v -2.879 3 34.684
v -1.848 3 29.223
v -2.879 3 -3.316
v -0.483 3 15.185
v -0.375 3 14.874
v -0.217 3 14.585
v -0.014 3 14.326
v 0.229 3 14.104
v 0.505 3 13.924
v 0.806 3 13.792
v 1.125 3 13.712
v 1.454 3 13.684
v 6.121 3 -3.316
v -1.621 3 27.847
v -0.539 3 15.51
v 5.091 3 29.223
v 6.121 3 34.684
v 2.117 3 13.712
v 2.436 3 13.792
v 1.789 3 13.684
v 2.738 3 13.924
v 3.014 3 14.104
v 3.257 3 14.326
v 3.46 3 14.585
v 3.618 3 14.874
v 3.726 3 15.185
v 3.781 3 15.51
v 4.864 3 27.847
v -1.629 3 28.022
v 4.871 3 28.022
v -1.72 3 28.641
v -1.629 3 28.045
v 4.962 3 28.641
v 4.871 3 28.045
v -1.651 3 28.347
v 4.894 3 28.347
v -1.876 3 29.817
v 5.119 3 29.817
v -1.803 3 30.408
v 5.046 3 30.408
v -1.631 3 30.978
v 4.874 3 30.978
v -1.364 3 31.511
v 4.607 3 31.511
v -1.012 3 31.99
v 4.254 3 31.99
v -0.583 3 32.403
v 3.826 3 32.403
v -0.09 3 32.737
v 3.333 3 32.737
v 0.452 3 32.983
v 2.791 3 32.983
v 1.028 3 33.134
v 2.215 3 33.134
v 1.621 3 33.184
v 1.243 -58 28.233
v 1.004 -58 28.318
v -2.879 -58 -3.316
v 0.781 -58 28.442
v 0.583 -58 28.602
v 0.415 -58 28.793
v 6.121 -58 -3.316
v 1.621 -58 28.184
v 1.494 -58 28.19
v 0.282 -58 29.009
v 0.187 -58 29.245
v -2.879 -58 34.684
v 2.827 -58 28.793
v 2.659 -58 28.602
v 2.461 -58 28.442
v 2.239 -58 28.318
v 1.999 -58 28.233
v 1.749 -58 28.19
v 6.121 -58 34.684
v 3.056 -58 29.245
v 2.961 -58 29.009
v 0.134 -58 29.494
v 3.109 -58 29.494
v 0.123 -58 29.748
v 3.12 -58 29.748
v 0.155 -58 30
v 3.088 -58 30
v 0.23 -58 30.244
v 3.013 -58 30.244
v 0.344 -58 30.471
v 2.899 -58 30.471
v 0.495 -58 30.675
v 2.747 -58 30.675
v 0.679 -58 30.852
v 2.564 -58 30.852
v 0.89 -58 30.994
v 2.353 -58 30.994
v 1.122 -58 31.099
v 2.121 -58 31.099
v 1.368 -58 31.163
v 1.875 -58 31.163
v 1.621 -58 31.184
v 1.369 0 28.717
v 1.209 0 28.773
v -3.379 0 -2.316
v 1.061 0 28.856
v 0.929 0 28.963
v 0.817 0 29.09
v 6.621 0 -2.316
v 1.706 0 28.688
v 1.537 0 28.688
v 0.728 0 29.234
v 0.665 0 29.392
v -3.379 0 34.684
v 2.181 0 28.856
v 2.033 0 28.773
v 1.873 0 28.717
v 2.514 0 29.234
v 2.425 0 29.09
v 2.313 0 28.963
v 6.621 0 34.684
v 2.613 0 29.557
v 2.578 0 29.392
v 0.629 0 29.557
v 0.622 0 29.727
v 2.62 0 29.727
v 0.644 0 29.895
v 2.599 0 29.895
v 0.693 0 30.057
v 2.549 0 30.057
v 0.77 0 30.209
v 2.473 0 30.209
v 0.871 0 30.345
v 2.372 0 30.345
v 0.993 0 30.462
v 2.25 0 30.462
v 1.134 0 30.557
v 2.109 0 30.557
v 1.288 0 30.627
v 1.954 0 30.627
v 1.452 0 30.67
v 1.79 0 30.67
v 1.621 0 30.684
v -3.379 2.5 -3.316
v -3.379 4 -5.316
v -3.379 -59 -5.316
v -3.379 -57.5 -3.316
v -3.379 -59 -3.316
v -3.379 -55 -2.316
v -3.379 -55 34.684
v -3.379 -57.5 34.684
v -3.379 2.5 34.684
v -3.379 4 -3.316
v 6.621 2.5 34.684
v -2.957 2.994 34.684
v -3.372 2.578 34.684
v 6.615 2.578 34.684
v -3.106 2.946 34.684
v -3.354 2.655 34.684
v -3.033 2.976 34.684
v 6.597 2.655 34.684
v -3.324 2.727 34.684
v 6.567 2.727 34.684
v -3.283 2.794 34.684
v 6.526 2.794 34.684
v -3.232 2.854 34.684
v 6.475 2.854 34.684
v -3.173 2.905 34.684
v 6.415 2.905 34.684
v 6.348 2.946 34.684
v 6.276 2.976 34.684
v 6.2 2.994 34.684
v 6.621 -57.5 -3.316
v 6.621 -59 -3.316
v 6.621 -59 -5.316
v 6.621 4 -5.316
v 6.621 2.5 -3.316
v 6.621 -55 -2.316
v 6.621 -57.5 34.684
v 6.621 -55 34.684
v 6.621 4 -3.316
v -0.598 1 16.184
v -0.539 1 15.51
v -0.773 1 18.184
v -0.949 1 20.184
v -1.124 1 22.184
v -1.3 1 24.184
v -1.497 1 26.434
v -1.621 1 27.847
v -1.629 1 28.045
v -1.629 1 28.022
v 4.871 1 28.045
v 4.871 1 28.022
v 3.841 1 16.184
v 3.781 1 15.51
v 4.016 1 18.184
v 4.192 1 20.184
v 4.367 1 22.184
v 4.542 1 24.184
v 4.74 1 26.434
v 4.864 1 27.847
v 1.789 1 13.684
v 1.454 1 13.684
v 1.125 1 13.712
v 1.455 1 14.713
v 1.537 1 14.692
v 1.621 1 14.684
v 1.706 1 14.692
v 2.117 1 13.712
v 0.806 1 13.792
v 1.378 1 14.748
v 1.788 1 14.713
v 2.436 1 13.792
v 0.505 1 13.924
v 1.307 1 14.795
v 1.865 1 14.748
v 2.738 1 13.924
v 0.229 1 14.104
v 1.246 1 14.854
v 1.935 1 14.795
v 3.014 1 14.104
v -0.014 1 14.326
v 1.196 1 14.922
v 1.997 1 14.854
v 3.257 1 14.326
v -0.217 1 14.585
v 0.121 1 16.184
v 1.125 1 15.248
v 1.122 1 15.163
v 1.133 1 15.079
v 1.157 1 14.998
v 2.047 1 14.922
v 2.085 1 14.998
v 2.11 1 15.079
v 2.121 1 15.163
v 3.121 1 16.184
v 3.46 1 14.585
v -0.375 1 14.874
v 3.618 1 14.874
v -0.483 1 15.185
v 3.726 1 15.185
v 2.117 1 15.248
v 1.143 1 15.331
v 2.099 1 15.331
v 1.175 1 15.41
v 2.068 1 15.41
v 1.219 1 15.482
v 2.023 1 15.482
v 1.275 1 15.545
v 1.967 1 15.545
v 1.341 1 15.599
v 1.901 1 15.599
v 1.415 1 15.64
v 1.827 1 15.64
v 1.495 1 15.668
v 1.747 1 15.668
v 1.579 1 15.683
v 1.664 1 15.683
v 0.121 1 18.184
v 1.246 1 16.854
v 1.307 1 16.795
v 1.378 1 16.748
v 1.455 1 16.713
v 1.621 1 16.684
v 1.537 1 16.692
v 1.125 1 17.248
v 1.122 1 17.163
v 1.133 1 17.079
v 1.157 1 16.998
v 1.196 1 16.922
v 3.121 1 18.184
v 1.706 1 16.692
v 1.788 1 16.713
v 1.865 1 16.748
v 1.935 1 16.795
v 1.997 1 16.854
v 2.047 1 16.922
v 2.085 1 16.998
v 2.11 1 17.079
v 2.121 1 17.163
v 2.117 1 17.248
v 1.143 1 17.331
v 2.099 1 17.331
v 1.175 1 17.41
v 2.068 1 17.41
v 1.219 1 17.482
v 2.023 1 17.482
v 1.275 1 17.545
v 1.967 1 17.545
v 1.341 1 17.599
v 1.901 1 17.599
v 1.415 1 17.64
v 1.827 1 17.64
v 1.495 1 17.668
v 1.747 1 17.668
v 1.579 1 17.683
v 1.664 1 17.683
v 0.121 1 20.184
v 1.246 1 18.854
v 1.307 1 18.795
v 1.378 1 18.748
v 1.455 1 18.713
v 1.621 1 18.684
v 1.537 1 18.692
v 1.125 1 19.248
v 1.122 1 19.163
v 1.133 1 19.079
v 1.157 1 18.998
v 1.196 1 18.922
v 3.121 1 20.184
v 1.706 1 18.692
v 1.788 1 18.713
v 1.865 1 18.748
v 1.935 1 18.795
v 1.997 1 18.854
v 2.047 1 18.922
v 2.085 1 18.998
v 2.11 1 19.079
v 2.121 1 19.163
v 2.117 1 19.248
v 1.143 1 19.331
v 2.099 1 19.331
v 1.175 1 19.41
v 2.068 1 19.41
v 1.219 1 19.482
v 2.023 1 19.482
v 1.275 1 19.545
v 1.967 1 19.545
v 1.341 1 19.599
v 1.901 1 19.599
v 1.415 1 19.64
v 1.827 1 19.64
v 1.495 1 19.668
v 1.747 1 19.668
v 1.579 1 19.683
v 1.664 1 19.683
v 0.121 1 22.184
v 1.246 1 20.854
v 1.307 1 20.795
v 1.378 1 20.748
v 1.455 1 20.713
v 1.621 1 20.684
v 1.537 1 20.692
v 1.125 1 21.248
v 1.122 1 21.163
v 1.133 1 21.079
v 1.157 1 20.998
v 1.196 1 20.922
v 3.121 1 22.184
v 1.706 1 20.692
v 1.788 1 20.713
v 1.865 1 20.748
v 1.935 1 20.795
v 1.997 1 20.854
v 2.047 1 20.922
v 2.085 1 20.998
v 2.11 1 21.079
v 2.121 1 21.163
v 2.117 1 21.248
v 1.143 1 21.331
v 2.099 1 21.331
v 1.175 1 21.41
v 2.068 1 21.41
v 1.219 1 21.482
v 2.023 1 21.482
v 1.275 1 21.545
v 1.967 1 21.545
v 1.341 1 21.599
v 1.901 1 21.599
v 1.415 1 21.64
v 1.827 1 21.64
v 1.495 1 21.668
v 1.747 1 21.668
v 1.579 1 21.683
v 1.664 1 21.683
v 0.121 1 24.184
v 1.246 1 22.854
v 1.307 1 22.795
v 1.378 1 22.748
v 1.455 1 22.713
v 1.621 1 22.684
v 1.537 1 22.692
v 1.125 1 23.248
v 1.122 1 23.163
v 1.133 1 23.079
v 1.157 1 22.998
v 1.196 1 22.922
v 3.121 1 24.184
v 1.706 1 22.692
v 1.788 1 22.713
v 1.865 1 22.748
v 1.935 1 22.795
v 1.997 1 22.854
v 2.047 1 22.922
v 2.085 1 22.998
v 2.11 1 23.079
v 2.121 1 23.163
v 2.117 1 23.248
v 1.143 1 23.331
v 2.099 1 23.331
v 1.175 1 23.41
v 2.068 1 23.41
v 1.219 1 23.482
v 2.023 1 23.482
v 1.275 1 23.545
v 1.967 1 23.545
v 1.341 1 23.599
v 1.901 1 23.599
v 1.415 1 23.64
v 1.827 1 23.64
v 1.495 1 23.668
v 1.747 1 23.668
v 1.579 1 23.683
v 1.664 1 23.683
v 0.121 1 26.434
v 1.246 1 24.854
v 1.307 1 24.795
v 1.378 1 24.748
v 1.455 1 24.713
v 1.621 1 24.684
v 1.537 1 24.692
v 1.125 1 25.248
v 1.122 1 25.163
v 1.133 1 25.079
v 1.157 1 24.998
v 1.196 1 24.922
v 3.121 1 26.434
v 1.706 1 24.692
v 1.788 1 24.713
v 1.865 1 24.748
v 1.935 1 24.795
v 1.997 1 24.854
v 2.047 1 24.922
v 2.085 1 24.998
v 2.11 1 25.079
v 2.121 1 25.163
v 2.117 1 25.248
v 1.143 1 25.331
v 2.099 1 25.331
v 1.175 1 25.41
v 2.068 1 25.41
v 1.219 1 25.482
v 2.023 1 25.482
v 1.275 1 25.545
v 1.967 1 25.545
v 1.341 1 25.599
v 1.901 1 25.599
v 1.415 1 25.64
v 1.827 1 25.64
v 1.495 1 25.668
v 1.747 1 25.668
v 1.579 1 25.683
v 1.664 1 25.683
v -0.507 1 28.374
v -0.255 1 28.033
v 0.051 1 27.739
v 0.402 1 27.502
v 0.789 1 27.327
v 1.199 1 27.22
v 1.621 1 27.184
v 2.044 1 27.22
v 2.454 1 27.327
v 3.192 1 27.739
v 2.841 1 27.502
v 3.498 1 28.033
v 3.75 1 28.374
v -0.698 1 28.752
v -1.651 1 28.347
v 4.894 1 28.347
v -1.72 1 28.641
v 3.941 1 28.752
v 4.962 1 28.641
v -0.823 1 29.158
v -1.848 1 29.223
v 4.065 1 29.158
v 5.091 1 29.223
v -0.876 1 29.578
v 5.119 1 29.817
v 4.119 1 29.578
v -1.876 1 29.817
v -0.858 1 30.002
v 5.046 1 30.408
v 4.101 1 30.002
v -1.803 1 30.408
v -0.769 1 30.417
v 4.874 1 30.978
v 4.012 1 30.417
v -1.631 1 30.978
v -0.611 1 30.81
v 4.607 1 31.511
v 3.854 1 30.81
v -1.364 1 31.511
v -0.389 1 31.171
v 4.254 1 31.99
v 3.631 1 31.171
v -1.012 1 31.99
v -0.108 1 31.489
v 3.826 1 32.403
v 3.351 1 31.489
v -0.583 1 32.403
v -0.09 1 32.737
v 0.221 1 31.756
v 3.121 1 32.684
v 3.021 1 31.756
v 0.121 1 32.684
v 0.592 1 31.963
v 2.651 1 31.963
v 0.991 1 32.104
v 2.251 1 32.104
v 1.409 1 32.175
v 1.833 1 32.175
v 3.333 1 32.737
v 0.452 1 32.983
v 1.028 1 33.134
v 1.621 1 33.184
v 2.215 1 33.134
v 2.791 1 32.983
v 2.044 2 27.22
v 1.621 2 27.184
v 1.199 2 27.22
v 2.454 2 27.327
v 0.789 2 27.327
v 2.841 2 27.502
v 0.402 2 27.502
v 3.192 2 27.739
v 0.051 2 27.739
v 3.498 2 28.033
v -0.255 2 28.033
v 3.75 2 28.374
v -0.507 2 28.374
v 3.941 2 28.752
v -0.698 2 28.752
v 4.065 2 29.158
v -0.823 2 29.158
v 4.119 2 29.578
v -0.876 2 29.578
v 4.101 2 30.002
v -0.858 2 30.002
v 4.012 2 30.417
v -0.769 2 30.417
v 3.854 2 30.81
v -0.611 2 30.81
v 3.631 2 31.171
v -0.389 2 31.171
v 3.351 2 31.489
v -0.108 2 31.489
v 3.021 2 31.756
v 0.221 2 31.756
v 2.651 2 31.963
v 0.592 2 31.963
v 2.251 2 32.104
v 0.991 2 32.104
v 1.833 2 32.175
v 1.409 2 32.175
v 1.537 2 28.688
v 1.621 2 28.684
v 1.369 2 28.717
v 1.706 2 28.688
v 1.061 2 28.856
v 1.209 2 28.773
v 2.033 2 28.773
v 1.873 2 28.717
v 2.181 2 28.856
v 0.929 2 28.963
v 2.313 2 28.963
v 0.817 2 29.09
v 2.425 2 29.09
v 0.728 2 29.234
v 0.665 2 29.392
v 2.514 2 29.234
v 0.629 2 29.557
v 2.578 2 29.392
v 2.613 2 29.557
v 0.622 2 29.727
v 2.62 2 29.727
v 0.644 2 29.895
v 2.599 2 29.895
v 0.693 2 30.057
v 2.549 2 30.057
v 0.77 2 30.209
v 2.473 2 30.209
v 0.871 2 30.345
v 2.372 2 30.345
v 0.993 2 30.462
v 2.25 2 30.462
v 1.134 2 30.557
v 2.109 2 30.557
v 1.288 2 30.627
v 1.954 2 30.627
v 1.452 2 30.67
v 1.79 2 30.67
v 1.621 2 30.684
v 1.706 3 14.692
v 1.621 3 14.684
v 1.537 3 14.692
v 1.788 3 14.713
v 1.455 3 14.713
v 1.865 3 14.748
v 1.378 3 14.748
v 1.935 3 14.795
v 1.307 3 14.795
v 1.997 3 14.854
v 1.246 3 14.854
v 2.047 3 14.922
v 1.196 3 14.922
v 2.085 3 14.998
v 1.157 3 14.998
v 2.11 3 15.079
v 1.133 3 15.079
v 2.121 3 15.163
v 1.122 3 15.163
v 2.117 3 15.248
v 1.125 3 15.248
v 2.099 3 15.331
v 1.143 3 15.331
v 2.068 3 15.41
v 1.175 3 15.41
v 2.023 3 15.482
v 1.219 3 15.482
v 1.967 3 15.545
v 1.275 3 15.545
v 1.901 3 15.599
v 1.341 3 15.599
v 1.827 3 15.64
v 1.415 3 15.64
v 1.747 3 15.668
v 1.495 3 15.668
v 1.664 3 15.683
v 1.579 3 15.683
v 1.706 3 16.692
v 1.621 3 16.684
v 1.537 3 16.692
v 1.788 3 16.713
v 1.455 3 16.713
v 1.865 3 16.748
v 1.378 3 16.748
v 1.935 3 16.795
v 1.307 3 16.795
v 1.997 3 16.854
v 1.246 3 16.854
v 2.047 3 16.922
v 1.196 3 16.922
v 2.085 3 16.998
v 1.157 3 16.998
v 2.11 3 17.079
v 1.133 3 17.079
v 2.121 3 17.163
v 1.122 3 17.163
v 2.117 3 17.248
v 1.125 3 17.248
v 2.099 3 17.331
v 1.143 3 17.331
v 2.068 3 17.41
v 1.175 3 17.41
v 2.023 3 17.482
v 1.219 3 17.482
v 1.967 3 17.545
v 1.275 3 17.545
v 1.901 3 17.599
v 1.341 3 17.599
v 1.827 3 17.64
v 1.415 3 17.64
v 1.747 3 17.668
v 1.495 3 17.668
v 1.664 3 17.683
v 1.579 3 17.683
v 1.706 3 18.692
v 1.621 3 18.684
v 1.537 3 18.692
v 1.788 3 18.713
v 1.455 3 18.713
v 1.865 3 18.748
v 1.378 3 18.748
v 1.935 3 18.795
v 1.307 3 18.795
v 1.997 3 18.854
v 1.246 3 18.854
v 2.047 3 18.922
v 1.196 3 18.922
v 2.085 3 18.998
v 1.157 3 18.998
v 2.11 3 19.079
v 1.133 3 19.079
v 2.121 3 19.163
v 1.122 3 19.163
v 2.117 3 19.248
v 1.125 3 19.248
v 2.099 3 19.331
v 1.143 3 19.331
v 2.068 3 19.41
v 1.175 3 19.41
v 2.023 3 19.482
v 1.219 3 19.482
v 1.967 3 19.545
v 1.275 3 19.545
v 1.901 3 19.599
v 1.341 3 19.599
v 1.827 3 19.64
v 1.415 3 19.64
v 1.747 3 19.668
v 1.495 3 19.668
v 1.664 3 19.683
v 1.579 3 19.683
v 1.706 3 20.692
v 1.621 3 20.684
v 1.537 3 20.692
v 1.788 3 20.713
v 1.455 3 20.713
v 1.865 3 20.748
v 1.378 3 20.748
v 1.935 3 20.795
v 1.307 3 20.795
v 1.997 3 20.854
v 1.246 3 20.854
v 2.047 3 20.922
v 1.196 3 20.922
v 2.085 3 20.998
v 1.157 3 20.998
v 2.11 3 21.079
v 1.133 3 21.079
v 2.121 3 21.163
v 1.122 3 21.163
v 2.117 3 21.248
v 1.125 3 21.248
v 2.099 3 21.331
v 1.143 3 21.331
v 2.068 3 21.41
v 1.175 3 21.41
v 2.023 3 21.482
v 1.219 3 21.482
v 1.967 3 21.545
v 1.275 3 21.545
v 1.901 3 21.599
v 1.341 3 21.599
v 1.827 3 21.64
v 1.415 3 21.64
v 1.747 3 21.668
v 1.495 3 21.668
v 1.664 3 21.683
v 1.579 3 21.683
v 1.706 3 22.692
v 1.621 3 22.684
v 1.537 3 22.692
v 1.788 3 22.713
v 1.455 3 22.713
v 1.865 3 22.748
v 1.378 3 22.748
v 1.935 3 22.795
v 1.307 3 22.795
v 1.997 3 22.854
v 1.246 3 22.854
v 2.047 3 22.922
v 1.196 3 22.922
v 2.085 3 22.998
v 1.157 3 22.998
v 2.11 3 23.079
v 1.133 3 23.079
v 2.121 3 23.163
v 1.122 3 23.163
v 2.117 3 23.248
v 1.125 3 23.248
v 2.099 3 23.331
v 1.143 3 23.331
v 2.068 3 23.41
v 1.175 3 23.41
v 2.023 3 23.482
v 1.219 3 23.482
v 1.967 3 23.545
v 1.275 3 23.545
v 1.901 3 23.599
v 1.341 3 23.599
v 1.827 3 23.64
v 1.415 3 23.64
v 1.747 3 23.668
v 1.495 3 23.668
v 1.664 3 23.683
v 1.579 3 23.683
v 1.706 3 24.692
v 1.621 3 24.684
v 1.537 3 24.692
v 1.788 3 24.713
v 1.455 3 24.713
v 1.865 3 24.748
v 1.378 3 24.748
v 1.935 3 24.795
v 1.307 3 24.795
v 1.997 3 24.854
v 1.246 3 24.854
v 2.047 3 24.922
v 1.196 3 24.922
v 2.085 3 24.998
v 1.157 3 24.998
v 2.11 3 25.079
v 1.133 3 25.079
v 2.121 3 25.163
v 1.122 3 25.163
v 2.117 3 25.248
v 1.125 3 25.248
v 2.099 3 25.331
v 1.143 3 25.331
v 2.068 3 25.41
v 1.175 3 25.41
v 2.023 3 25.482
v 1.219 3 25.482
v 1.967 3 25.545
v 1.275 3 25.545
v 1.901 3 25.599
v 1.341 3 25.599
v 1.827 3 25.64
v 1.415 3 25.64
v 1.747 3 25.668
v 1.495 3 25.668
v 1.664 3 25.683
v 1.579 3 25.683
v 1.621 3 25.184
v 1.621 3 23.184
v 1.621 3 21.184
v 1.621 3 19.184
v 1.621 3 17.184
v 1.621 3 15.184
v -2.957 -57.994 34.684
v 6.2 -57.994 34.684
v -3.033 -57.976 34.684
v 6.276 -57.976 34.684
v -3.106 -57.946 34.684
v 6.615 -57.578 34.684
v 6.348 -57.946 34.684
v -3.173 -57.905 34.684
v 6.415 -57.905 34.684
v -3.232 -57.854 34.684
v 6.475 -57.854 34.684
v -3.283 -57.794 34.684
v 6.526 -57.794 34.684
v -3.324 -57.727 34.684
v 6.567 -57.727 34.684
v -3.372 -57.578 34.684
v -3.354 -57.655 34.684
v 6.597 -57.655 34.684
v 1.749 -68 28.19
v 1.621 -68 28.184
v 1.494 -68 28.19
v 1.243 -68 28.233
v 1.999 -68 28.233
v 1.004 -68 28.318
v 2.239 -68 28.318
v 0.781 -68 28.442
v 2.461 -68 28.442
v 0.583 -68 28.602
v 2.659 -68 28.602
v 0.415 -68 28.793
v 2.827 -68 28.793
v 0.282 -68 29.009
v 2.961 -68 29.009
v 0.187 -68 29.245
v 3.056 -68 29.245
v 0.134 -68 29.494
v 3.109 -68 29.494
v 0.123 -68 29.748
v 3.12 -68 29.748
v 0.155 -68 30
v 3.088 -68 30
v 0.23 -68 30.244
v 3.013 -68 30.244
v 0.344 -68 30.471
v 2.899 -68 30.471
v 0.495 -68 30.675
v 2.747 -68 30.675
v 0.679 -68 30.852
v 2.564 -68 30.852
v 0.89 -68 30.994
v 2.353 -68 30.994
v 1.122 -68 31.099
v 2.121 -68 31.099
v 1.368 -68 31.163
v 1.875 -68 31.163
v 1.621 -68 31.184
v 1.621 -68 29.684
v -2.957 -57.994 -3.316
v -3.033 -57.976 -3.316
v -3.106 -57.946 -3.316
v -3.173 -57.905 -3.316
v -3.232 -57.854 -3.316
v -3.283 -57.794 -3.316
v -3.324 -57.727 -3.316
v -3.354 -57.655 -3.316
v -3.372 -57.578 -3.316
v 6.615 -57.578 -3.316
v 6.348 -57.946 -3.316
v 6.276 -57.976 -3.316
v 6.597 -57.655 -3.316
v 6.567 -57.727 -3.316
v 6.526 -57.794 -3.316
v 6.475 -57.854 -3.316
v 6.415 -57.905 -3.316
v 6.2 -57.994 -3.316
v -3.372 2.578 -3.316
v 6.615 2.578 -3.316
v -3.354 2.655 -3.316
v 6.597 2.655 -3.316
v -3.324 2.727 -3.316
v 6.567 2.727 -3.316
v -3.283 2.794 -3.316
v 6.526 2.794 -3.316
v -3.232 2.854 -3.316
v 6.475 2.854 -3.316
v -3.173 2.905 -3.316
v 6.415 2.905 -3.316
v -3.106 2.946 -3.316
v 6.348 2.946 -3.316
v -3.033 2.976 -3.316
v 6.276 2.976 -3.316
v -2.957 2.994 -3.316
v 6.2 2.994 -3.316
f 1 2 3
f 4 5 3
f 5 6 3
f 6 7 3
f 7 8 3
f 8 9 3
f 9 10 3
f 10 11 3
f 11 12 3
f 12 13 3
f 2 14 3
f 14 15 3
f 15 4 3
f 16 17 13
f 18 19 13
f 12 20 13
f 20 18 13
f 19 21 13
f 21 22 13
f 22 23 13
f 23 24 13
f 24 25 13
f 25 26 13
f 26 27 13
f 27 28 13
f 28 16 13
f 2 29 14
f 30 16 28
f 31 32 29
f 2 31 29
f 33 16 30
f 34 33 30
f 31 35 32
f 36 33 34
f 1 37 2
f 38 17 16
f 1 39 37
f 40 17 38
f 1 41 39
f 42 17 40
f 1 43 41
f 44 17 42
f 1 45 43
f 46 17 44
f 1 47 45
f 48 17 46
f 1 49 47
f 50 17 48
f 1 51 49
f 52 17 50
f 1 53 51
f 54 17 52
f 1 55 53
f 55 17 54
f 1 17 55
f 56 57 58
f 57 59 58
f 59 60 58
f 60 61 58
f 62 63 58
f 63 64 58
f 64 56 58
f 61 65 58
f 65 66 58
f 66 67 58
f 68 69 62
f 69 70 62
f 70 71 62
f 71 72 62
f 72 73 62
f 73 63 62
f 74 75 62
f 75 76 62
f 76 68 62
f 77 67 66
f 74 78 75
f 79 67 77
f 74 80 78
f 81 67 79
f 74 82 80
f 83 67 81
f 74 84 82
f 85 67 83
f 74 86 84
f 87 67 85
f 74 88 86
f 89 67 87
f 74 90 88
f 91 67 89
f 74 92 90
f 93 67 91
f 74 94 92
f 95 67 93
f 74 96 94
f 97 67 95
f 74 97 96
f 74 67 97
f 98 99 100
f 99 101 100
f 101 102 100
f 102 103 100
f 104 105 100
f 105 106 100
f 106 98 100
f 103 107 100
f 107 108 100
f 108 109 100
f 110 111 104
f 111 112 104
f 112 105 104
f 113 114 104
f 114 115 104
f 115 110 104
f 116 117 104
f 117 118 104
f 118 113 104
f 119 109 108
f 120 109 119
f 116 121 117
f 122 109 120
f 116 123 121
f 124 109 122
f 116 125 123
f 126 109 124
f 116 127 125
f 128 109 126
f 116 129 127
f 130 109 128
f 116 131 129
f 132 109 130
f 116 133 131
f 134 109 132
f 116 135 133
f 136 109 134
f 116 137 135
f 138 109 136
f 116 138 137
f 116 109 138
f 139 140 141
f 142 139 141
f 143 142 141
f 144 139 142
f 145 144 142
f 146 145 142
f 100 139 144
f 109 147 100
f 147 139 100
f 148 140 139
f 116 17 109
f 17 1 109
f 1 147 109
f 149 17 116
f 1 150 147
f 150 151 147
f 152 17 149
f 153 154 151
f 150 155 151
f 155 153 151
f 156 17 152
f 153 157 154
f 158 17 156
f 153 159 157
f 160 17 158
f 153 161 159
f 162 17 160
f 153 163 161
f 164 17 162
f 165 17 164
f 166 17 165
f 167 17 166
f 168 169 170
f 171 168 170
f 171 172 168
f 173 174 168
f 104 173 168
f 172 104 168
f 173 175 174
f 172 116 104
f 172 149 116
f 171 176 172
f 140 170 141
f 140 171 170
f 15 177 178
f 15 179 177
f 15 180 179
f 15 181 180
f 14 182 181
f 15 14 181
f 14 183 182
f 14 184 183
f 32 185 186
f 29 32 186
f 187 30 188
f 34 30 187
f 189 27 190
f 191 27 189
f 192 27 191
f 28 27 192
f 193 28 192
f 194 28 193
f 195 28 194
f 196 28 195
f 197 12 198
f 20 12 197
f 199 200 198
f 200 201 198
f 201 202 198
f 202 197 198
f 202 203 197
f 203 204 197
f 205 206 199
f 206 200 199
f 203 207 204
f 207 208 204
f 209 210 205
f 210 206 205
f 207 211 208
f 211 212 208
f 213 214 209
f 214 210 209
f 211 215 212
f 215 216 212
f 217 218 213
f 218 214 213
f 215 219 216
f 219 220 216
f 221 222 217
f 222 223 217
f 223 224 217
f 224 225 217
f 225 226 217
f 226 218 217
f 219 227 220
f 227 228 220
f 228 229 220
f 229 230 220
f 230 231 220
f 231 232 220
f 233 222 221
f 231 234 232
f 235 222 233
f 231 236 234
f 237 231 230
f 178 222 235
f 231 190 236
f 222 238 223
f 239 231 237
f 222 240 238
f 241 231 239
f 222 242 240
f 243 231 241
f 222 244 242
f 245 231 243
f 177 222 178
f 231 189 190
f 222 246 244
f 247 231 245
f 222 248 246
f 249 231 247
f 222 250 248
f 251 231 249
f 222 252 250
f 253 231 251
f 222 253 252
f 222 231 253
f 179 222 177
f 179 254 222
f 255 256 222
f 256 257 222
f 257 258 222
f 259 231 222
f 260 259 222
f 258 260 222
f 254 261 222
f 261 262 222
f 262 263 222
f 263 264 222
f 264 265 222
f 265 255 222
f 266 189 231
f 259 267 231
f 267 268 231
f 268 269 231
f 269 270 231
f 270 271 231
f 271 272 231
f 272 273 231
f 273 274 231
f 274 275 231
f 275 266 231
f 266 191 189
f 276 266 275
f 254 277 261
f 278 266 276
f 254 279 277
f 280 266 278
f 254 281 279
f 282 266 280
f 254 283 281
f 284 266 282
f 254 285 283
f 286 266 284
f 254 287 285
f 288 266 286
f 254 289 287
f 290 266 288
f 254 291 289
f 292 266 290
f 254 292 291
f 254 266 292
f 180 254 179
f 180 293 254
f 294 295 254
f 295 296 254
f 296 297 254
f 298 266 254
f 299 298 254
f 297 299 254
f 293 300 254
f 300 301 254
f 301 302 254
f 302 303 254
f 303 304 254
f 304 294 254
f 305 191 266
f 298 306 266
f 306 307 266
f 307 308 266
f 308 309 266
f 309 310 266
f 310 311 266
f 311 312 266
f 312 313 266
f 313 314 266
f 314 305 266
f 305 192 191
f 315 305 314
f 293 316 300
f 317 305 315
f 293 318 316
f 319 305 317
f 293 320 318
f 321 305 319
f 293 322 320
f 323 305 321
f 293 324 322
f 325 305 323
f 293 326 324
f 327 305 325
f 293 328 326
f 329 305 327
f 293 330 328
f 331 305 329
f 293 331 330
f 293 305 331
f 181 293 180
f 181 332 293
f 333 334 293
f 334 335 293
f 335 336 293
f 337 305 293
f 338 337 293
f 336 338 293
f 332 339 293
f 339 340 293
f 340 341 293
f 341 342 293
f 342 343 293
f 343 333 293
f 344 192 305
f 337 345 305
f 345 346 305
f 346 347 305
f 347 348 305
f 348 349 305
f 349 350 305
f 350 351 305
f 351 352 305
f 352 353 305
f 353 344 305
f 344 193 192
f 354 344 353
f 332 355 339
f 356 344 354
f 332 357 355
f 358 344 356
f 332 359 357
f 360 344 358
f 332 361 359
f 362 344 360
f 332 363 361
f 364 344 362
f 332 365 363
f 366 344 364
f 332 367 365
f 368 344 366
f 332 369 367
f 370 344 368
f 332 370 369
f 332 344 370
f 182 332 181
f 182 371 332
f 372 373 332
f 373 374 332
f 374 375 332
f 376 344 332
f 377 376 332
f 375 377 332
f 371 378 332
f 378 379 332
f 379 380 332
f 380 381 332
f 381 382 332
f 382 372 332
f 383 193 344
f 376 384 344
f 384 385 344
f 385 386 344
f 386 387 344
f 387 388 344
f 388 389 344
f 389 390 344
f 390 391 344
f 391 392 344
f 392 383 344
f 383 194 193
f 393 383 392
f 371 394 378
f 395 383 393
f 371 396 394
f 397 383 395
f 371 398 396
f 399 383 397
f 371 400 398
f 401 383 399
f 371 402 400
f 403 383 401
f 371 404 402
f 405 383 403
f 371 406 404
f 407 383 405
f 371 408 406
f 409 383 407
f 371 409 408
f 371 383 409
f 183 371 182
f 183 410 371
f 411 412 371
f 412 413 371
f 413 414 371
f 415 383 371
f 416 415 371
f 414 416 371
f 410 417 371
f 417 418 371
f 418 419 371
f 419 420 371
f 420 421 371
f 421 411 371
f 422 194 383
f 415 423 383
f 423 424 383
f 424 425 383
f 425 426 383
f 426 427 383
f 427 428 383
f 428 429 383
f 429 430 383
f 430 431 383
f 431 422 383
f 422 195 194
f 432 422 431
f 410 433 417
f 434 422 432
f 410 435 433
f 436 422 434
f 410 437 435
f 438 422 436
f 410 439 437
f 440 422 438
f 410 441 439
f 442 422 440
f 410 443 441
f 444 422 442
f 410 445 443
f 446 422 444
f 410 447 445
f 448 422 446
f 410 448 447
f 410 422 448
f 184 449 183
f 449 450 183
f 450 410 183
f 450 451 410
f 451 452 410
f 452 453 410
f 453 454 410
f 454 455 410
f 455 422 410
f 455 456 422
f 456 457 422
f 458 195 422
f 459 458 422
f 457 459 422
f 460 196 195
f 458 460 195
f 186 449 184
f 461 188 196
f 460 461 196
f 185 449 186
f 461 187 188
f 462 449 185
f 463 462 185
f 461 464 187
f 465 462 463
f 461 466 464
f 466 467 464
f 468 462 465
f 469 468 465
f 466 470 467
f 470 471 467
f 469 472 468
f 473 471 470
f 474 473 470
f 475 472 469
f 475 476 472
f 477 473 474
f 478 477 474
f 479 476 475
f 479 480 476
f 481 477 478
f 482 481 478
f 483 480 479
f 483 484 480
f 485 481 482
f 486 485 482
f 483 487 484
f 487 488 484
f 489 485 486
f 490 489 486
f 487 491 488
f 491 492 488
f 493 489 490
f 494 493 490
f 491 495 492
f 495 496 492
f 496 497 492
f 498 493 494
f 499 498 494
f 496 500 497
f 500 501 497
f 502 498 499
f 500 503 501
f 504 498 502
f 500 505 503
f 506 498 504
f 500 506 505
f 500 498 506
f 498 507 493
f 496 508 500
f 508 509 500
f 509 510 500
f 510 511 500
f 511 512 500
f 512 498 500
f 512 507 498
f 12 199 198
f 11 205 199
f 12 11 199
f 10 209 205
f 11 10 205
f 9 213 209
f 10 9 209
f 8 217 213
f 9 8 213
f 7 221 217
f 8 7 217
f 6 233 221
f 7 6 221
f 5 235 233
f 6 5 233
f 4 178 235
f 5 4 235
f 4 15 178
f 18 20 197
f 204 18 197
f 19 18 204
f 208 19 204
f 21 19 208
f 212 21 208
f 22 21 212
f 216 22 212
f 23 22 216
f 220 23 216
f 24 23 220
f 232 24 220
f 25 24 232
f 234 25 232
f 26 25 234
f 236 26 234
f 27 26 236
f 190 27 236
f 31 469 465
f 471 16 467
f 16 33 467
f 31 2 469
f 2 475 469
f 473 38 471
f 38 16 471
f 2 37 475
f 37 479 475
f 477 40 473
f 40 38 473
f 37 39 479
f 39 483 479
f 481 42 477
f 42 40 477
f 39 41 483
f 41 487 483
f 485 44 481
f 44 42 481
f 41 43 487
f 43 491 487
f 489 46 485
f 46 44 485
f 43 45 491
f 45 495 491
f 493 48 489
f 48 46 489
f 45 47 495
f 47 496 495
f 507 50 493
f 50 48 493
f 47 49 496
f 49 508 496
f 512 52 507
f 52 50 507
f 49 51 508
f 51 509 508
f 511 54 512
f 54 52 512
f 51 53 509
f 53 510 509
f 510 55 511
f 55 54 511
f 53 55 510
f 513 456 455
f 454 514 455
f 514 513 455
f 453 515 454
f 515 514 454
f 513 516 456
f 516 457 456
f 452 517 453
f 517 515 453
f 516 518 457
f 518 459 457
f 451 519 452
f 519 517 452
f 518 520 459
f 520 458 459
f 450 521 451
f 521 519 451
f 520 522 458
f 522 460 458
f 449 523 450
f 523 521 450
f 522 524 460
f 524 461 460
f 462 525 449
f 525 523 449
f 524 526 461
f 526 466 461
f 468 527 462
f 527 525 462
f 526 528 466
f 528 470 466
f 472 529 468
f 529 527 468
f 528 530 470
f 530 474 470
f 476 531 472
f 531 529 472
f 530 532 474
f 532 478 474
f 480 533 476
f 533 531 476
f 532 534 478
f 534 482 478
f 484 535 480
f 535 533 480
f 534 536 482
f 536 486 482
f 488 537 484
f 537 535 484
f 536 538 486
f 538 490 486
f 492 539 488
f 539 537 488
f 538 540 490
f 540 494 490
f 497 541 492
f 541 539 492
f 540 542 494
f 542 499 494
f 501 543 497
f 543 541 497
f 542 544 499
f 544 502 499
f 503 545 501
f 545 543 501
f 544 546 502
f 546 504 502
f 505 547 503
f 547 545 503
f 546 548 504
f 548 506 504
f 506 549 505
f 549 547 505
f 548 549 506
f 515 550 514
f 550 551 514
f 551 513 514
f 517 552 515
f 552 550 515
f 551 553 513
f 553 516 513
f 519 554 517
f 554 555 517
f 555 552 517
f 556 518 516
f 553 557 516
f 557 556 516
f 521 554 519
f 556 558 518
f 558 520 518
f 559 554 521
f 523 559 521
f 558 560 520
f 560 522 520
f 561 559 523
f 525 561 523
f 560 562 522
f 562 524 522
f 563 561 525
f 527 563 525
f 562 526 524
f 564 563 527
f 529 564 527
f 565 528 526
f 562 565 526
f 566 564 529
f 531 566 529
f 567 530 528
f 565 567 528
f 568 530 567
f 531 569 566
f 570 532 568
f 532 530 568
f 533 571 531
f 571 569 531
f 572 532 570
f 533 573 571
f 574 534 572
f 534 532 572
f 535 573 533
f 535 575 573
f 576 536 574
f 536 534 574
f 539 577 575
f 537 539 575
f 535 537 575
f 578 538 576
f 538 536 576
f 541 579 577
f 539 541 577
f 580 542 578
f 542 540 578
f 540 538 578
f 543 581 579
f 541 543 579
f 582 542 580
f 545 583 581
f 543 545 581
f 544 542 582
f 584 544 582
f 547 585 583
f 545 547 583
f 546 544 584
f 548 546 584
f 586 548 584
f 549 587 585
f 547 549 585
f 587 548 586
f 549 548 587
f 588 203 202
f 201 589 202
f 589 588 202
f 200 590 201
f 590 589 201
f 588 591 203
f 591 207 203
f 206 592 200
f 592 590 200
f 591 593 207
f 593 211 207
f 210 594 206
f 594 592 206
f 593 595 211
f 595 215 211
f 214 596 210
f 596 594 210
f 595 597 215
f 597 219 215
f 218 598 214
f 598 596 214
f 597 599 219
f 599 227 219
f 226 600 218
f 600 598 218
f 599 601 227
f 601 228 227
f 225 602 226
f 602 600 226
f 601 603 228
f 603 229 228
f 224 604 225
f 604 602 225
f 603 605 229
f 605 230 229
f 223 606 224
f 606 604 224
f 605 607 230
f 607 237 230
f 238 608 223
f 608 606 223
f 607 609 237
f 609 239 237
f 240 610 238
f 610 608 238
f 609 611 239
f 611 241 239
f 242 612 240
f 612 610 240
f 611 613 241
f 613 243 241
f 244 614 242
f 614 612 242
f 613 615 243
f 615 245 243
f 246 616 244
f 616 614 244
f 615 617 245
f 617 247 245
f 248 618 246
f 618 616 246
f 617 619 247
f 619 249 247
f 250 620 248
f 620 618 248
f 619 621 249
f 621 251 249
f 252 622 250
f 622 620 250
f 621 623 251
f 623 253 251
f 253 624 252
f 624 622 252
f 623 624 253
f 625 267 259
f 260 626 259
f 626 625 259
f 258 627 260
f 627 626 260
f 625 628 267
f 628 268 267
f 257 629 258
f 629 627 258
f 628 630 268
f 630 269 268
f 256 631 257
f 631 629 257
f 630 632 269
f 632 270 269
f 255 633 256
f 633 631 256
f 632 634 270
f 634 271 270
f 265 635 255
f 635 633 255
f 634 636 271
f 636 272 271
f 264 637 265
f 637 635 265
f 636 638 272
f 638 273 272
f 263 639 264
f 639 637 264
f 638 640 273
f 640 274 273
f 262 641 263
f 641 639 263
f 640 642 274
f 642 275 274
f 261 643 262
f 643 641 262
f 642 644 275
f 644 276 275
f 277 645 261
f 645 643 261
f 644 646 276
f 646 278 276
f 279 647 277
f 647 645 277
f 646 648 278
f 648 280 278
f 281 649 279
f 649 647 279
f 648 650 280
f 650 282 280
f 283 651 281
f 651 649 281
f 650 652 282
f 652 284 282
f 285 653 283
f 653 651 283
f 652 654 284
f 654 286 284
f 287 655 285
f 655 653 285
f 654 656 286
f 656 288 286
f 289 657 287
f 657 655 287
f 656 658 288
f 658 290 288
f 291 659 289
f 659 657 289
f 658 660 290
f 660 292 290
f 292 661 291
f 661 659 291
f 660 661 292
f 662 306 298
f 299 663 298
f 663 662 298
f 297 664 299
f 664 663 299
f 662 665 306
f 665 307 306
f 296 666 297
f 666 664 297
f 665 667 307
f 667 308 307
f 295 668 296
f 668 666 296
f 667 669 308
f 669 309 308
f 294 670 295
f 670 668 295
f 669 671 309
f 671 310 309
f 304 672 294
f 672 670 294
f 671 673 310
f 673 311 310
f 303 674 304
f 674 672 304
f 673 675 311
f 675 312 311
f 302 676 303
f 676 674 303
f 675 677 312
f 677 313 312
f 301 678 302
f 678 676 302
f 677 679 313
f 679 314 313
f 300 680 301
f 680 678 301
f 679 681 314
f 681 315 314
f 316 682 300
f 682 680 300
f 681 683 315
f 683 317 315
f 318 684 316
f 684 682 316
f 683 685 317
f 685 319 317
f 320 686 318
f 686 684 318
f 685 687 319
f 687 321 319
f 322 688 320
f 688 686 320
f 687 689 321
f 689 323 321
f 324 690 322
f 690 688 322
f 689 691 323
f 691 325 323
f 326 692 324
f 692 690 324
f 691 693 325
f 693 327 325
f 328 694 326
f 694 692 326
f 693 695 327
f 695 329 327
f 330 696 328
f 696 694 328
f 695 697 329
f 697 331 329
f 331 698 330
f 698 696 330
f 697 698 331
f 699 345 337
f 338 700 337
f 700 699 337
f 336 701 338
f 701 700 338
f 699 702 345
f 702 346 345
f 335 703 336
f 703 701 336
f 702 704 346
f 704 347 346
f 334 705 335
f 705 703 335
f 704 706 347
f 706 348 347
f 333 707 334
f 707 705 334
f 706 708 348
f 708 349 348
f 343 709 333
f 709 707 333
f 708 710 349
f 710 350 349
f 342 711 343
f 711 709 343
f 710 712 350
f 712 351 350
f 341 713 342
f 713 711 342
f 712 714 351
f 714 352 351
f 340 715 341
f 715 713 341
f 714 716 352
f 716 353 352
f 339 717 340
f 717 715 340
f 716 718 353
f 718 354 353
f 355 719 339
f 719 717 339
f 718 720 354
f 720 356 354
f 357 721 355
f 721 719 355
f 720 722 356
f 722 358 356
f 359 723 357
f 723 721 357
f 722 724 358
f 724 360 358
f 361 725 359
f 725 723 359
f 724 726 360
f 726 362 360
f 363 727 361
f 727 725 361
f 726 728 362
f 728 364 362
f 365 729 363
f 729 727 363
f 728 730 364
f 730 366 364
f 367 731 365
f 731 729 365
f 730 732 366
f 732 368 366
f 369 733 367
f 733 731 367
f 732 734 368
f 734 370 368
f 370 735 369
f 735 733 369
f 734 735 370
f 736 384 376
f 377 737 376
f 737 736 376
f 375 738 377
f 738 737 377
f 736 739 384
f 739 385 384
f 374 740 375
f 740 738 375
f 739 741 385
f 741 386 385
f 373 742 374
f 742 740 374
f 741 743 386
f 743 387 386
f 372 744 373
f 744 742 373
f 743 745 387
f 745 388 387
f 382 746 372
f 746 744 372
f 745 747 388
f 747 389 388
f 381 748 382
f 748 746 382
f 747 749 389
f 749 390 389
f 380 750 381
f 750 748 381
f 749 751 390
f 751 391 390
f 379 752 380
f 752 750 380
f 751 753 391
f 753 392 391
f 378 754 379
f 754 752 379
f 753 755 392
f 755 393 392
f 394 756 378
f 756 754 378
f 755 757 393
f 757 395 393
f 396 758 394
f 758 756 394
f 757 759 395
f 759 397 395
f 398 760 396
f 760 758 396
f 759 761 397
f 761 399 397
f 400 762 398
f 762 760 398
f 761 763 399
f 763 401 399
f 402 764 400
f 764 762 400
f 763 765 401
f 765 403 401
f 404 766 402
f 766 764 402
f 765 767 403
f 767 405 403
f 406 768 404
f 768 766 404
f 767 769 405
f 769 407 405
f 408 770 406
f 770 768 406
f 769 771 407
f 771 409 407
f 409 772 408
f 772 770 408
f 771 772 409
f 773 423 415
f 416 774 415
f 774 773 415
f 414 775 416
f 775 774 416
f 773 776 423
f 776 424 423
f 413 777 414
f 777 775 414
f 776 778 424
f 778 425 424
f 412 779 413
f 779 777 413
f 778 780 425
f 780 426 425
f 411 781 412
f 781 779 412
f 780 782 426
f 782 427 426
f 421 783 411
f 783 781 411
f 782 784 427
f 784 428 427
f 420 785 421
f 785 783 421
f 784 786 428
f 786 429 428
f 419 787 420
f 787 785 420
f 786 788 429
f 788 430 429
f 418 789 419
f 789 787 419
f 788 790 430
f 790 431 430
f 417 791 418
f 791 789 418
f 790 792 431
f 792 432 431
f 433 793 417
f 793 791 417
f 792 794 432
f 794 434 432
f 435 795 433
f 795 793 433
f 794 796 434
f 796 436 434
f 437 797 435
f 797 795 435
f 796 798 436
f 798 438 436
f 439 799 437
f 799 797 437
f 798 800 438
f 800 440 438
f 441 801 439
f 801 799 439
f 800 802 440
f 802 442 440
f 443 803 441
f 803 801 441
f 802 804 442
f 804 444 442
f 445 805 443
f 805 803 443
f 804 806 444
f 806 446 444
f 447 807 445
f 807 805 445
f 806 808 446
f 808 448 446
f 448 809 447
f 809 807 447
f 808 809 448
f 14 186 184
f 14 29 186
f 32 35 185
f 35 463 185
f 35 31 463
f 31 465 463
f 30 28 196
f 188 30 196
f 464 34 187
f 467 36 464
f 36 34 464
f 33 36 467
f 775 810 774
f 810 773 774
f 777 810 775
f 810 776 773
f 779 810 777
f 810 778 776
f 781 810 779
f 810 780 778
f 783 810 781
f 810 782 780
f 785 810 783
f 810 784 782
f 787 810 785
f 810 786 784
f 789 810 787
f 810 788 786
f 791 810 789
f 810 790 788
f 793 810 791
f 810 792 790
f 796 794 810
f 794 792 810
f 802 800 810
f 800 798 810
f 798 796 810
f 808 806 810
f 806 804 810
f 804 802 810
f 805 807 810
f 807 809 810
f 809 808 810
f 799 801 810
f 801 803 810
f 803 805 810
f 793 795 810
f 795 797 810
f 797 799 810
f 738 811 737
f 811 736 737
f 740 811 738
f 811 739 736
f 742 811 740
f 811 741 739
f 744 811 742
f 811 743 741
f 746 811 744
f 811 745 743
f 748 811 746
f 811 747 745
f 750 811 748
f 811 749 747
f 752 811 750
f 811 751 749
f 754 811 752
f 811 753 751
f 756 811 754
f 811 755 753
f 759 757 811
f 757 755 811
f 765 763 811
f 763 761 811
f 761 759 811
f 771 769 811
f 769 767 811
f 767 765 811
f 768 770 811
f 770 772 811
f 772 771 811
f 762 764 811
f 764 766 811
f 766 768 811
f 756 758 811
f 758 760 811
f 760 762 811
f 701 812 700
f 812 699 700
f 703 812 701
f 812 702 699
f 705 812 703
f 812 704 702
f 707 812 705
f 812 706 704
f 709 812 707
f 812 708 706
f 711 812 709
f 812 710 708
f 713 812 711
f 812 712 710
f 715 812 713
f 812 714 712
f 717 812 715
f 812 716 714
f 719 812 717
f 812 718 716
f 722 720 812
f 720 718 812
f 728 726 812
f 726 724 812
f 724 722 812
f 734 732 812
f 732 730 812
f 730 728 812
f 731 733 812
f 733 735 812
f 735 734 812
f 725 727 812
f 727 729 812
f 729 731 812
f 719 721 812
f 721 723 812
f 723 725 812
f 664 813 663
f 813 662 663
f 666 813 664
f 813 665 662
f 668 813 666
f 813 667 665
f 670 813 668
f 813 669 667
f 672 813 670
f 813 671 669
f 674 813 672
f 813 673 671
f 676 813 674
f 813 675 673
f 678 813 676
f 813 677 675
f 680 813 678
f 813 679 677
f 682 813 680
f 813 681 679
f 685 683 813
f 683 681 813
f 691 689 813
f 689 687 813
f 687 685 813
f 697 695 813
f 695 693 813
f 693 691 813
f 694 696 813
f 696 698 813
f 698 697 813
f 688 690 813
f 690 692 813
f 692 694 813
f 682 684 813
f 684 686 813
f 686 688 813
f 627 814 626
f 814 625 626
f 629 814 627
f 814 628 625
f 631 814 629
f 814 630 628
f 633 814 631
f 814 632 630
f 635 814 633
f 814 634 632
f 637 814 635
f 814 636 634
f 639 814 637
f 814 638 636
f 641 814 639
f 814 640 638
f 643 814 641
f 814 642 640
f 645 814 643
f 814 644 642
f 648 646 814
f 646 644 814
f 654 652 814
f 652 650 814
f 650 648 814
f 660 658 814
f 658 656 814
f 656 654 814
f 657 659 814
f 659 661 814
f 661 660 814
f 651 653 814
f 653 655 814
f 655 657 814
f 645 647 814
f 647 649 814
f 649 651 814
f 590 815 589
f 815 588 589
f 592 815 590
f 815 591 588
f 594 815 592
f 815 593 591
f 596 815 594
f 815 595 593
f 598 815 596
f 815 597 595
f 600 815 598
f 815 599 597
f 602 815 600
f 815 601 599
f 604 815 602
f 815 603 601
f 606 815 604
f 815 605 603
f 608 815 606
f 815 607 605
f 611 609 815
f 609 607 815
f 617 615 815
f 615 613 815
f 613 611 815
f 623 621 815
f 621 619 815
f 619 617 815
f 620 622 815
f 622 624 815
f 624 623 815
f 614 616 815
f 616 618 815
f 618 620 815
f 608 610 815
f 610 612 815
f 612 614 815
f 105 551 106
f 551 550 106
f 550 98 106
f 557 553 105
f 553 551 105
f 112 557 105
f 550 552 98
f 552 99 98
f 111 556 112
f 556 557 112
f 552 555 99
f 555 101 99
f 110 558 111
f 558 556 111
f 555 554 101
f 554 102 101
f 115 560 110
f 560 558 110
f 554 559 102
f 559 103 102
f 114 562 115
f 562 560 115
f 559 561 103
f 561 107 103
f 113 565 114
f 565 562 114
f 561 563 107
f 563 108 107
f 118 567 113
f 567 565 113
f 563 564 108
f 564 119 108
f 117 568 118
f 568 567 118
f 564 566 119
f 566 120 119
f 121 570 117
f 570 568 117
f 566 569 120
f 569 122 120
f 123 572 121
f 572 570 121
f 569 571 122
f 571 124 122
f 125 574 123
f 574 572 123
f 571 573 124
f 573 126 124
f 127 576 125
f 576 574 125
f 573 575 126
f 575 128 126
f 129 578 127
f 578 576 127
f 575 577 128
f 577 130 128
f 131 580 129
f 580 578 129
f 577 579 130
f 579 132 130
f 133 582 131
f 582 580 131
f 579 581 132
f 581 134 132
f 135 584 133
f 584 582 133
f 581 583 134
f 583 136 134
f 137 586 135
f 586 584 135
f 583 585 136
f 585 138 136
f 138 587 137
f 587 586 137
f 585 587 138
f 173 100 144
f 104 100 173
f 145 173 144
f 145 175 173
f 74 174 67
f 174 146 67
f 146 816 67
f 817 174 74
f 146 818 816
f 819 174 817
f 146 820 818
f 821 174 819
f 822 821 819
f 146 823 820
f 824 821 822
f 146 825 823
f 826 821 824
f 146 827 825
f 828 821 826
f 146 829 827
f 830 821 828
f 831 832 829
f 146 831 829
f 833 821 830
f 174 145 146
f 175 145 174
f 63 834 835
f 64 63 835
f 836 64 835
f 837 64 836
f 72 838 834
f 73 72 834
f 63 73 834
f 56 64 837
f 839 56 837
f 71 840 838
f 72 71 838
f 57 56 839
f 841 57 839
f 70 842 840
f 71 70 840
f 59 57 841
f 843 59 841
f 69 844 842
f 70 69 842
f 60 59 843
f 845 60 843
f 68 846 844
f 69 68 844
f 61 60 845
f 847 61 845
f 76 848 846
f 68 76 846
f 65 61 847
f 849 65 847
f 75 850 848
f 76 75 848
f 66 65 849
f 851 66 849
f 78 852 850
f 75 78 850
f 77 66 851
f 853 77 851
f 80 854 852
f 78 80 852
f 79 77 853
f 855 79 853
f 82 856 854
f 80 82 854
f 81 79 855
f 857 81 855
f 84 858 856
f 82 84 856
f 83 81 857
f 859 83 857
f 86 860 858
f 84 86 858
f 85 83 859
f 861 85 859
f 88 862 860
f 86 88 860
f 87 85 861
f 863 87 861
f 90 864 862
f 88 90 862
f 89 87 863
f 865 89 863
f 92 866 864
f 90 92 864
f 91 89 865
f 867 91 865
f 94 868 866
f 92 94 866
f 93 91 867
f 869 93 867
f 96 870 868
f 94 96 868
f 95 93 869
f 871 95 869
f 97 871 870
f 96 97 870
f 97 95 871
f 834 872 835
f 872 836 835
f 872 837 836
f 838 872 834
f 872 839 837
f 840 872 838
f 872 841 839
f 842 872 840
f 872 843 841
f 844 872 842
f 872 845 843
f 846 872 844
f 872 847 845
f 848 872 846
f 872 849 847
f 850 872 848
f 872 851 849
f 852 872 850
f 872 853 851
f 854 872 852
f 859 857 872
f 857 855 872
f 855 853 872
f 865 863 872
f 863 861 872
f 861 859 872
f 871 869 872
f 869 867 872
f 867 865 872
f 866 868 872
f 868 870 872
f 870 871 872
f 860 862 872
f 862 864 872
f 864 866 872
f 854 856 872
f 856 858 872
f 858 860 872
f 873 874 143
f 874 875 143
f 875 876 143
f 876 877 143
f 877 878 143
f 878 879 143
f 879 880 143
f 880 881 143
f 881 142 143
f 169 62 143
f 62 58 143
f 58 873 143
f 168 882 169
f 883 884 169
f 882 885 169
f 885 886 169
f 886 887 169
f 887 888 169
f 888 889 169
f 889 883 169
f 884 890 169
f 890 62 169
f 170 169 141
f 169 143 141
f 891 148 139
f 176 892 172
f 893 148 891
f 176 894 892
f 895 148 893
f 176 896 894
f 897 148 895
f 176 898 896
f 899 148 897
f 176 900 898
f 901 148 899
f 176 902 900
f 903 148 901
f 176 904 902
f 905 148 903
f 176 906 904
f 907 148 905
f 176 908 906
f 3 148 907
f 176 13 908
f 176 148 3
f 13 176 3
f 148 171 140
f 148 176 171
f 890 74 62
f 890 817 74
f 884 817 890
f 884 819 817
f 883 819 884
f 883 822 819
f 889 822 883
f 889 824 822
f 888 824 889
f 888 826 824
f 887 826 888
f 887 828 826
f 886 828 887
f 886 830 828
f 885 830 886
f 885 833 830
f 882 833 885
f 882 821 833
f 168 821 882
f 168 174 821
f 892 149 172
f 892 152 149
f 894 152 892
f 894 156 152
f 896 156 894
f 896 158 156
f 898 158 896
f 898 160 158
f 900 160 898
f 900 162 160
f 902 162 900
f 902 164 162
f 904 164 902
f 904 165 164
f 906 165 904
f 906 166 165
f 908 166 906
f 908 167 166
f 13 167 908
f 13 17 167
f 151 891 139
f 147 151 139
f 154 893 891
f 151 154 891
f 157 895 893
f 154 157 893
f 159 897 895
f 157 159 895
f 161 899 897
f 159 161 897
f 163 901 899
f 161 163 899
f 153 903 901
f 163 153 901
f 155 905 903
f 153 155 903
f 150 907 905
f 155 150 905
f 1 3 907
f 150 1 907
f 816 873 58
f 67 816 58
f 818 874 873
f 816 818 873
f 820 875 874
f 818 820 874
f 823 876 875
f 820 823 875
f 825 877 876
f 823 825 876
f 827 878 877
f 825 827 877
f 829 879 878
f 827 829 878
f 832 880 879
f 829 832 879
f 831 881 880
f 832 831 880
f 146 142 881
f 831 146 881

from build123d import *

# Parameters (mm, degrees)
SKETCH1_W             = 10
SKETCH1_H             = 40
BOSS_EXTRUDE1_DEPTH   = 3
CAVITY4_START         = 1
CAVITY4_OUTLINE_R     = 2.5
CAVITY4_OUTLINE_R_2   = 0.5
CAVITY4_DEPTH         = 2
CAVITY4_START_2       = 2
CAVITY4_2_OUTLINE_R   = 2.5
CAVITY4_2_OUTLINE_R_2 = 1
CAVITY4_2_DEPTH       = 1
CUT_EXTRUDE4_START    = -23
SKETCH5_R             = 1
CUT_EXTRUDE4_DEPTH    = 23
SKETCH7_W             = 10
SKETCH7_H             = 3
BOSS_EXTRUDE3_DEPTH   = 55
SKETCH8_R             = 1.5
BOSS_EXTRUDE4_DEPTH   = 10
SKETCH9_W             = 10
SKETCH9_H             = 2
BOSS_EXTRUDE5_DEPTH   = 1
FILLET2_R             = 0.5
FILLET3_R             = 0.5


# Read off the part's stored shape, not the designer's step: Cavity4
with BuildPart() as part:
    # Sketch1 → Boss-Extrude1 (new body)
    with BuildSketch(Plane(origin=(0, 0, 0), x_dir=(1, 0, 0), z_dir=(0, 1, 0))):
        with Locations((1.621359223, -14.684466019)):
            Rectangle(SKETCH1_W, SKETCH1_H)
    boss_extrude1 = extrude(amount=BOSS_EXTRUDE1_DEPTH)

    # Cavity4 outline → Cavity4 (cut)
    with BuildSketch(Plane(origin=(0, 0, 0), x_dir=(1, 0, 0), z_dir=(0, 1, 0)).offset(CAVITY4_START)):
        with BuildLine():
            Line((-0.538748891, -15.509698524), (-1.620990225, -27.847249725))
            ThreePointArc((-1.620990225, -27.847249725), (-1.626727223, -27.934549786), (-1.628640777, -28.022017221))
            Line((-1.628640777, -28.022017221), (-1.628640777, -28.045106388))
            ThreePointArc((-1.628640777, -28.045106388), (-1.65149867, -28.346617733), (-1.719549868, -28.641237163))
            ThreePointArc((-1.719549868, -28.641237163), (1.621359223, -33.184466019), (4.962268314, -28.641237163))
            ThreePointArc((4.962268314, -28.641237163), (4.894217117, -28.346617733), (4.871359223, -28.045106388))
            Line((4.871359223, -28.045106388), (4.871359223, -28.022017221))
            ThreePointArc((4.871359223, -28.022017221), (4.86944567, -27.934549786), (4.863708671, -27.847249725))
            Line((4.863708671, -27.847249725), (3.781467338, -15.509698524))
            ThreePointArc((3.781467338, -15.509698524), (3.14012955, -14.209756728), (1.78911789, -13.684466019))
            Line((1.78911789, -13.684466019), (1.453600557, -13.684466019))
            ThreePointArc((1.453600557, -13.684466019), (0.102588897, -14.209756728), (-0.538748891, -15.509698524))
        make_face()
        with Locations((1.621359223, -29.684466019)):
            Circle(CAVITY4_OUTLINE_R, mode=Mode.SUBTRACT)
        with Locations((1.621359223, -25.184466019)):
            Circle(CAVITY4_OUTLINE_R_2, mode=Mode.SUBTRACT)
        with Locations((1.621359223, -23.184466019)):
            Circle(CAVITY4_OUTLINE_R_2, mode=Mode.SUBTRACT)
        with Locations((1.621359223, -21.184466019)):
            Circle(CAVITY4_OUTLINE_R_2, mode=Mode.SUBTRACT)
        with Locations((1.621359223, -19.184466019)):
            Circle(CAVITY4_OUTLINE_R_2, mode=Mode.SUBTRACT)
        with Locations((1.621359223, -17.184466019)):
            Circle(CAVITY4_OUTLINE_R_2, mode=Mode.SUBTRACT)
        with Locations((1.621359223, -15.184466019)):
            Circle(CAVITY4_OUTLINE_R_2, mode=Mode.SUBTRACT)
    extrude(amount=CAVITY4_DEPTH, mode=Mode.SUBTRACT)

    # Cavity4 2 outline → Cavity4 2 (cut)
    with BuildSketch(Plane(origin=(0, 0, 0), x_dir=(1, 0, 0), z_dir=(0, 1, 0)).offset(CAVITY4_START_2)):
        with Locations((1.621359223, -29.684466019)):
            Circle(CAVITY4_2_OUTLINE_R)
        with Locations((1.621359223, -29.684466019)):
            Circle(CAVITY4_2_OUTLINE_R_2, mode=Mode.SUBTRACT)
    extrude(amount=CAVITY4_2_DEPTH, mode=Mode.SUBTRACT)

    # Sketch5 → Cut-Extrude4 (cut)
    with BuildSketch(Plane(origin=(0, 3, 0), x_dir=(1, 0, 0), z_dir=(0, 1, 0)).offset(CUT_EXTRUDE4_START)):
        with Locations(Location((1.621359223, -29.684466019, 0), (0, 0, 270))):
            Circle(SKETCH5_R)
    extrude(amount=CUT_EXTRUDE4_DEPTH, mode=Mode.SUBTRACT)

    # Sketch7 → Boss-Extrude3 (add)
    with BuildSketch(Plane.XZ):
        with Locations((1.621359223, -3.815533981)):
            Rectangle(SKETCH7_W, SKETCH7_H)
    extrude(amount=BOSS_EXTRUDE3_DEPTH)

    # Mirror1: Boss-Extrude1 across plane
    add(boss_extrude1.mirror(Plane(origin=(0, -27.5, 0), x_dir=(0, 0, 1), z_dir=(0, -1, 0))))

    # Sketch8 → Boss-Extrude4 (add)
    with BuildSketch(Plane.XZ.offset(58)):
        with Locations(Location((1.621359223, 29.684466019, 0), (0, 0, 270))):
            Circle(SKETCH8_R)
    extrude(amount=BOSS_EXTRUDE4_DEPTH)

    # Sketch9 → Boss-Extrude5 (add)
    with BuildSketch(Plane.XZ.offset(58)):
        with Locations((1.621359223, -4.315533981)):
            Rectangle(SKETCH9_W, SKETCH9_H)
    boss_extrude5 = extrude(amount=BOSS_EXTRUDE5_DEPTH)

    # Mirror2: Boss-Extrude5 across plane
    add(boss_extrude5.mirror(Plane(origin=(0, -27.5, 0), x_dir=(0, 0, 1), z_dir=(0, -1, 0))))

    # Fillet2
    fillet2_edges = [part.edges().sort_by_distance(p)[0] for p in [
        (6.621359223, 3, 15.684466019),
        (6.621359223, -58, 15.684466019),
    ]]
    fillet(fillet2_edges, radius=FILLET2_R)

    # Fillet3
    fillet3_edges = [part.edges().sort_by_distance(p)[0] for p in [
        (-3.378640777, -58, 15.684466019),
        (-3.378640777, 3, 15.684466019),
    ]]
    fillet(fillet3_edges, radius=FILLET3_R)


solid = part.part
